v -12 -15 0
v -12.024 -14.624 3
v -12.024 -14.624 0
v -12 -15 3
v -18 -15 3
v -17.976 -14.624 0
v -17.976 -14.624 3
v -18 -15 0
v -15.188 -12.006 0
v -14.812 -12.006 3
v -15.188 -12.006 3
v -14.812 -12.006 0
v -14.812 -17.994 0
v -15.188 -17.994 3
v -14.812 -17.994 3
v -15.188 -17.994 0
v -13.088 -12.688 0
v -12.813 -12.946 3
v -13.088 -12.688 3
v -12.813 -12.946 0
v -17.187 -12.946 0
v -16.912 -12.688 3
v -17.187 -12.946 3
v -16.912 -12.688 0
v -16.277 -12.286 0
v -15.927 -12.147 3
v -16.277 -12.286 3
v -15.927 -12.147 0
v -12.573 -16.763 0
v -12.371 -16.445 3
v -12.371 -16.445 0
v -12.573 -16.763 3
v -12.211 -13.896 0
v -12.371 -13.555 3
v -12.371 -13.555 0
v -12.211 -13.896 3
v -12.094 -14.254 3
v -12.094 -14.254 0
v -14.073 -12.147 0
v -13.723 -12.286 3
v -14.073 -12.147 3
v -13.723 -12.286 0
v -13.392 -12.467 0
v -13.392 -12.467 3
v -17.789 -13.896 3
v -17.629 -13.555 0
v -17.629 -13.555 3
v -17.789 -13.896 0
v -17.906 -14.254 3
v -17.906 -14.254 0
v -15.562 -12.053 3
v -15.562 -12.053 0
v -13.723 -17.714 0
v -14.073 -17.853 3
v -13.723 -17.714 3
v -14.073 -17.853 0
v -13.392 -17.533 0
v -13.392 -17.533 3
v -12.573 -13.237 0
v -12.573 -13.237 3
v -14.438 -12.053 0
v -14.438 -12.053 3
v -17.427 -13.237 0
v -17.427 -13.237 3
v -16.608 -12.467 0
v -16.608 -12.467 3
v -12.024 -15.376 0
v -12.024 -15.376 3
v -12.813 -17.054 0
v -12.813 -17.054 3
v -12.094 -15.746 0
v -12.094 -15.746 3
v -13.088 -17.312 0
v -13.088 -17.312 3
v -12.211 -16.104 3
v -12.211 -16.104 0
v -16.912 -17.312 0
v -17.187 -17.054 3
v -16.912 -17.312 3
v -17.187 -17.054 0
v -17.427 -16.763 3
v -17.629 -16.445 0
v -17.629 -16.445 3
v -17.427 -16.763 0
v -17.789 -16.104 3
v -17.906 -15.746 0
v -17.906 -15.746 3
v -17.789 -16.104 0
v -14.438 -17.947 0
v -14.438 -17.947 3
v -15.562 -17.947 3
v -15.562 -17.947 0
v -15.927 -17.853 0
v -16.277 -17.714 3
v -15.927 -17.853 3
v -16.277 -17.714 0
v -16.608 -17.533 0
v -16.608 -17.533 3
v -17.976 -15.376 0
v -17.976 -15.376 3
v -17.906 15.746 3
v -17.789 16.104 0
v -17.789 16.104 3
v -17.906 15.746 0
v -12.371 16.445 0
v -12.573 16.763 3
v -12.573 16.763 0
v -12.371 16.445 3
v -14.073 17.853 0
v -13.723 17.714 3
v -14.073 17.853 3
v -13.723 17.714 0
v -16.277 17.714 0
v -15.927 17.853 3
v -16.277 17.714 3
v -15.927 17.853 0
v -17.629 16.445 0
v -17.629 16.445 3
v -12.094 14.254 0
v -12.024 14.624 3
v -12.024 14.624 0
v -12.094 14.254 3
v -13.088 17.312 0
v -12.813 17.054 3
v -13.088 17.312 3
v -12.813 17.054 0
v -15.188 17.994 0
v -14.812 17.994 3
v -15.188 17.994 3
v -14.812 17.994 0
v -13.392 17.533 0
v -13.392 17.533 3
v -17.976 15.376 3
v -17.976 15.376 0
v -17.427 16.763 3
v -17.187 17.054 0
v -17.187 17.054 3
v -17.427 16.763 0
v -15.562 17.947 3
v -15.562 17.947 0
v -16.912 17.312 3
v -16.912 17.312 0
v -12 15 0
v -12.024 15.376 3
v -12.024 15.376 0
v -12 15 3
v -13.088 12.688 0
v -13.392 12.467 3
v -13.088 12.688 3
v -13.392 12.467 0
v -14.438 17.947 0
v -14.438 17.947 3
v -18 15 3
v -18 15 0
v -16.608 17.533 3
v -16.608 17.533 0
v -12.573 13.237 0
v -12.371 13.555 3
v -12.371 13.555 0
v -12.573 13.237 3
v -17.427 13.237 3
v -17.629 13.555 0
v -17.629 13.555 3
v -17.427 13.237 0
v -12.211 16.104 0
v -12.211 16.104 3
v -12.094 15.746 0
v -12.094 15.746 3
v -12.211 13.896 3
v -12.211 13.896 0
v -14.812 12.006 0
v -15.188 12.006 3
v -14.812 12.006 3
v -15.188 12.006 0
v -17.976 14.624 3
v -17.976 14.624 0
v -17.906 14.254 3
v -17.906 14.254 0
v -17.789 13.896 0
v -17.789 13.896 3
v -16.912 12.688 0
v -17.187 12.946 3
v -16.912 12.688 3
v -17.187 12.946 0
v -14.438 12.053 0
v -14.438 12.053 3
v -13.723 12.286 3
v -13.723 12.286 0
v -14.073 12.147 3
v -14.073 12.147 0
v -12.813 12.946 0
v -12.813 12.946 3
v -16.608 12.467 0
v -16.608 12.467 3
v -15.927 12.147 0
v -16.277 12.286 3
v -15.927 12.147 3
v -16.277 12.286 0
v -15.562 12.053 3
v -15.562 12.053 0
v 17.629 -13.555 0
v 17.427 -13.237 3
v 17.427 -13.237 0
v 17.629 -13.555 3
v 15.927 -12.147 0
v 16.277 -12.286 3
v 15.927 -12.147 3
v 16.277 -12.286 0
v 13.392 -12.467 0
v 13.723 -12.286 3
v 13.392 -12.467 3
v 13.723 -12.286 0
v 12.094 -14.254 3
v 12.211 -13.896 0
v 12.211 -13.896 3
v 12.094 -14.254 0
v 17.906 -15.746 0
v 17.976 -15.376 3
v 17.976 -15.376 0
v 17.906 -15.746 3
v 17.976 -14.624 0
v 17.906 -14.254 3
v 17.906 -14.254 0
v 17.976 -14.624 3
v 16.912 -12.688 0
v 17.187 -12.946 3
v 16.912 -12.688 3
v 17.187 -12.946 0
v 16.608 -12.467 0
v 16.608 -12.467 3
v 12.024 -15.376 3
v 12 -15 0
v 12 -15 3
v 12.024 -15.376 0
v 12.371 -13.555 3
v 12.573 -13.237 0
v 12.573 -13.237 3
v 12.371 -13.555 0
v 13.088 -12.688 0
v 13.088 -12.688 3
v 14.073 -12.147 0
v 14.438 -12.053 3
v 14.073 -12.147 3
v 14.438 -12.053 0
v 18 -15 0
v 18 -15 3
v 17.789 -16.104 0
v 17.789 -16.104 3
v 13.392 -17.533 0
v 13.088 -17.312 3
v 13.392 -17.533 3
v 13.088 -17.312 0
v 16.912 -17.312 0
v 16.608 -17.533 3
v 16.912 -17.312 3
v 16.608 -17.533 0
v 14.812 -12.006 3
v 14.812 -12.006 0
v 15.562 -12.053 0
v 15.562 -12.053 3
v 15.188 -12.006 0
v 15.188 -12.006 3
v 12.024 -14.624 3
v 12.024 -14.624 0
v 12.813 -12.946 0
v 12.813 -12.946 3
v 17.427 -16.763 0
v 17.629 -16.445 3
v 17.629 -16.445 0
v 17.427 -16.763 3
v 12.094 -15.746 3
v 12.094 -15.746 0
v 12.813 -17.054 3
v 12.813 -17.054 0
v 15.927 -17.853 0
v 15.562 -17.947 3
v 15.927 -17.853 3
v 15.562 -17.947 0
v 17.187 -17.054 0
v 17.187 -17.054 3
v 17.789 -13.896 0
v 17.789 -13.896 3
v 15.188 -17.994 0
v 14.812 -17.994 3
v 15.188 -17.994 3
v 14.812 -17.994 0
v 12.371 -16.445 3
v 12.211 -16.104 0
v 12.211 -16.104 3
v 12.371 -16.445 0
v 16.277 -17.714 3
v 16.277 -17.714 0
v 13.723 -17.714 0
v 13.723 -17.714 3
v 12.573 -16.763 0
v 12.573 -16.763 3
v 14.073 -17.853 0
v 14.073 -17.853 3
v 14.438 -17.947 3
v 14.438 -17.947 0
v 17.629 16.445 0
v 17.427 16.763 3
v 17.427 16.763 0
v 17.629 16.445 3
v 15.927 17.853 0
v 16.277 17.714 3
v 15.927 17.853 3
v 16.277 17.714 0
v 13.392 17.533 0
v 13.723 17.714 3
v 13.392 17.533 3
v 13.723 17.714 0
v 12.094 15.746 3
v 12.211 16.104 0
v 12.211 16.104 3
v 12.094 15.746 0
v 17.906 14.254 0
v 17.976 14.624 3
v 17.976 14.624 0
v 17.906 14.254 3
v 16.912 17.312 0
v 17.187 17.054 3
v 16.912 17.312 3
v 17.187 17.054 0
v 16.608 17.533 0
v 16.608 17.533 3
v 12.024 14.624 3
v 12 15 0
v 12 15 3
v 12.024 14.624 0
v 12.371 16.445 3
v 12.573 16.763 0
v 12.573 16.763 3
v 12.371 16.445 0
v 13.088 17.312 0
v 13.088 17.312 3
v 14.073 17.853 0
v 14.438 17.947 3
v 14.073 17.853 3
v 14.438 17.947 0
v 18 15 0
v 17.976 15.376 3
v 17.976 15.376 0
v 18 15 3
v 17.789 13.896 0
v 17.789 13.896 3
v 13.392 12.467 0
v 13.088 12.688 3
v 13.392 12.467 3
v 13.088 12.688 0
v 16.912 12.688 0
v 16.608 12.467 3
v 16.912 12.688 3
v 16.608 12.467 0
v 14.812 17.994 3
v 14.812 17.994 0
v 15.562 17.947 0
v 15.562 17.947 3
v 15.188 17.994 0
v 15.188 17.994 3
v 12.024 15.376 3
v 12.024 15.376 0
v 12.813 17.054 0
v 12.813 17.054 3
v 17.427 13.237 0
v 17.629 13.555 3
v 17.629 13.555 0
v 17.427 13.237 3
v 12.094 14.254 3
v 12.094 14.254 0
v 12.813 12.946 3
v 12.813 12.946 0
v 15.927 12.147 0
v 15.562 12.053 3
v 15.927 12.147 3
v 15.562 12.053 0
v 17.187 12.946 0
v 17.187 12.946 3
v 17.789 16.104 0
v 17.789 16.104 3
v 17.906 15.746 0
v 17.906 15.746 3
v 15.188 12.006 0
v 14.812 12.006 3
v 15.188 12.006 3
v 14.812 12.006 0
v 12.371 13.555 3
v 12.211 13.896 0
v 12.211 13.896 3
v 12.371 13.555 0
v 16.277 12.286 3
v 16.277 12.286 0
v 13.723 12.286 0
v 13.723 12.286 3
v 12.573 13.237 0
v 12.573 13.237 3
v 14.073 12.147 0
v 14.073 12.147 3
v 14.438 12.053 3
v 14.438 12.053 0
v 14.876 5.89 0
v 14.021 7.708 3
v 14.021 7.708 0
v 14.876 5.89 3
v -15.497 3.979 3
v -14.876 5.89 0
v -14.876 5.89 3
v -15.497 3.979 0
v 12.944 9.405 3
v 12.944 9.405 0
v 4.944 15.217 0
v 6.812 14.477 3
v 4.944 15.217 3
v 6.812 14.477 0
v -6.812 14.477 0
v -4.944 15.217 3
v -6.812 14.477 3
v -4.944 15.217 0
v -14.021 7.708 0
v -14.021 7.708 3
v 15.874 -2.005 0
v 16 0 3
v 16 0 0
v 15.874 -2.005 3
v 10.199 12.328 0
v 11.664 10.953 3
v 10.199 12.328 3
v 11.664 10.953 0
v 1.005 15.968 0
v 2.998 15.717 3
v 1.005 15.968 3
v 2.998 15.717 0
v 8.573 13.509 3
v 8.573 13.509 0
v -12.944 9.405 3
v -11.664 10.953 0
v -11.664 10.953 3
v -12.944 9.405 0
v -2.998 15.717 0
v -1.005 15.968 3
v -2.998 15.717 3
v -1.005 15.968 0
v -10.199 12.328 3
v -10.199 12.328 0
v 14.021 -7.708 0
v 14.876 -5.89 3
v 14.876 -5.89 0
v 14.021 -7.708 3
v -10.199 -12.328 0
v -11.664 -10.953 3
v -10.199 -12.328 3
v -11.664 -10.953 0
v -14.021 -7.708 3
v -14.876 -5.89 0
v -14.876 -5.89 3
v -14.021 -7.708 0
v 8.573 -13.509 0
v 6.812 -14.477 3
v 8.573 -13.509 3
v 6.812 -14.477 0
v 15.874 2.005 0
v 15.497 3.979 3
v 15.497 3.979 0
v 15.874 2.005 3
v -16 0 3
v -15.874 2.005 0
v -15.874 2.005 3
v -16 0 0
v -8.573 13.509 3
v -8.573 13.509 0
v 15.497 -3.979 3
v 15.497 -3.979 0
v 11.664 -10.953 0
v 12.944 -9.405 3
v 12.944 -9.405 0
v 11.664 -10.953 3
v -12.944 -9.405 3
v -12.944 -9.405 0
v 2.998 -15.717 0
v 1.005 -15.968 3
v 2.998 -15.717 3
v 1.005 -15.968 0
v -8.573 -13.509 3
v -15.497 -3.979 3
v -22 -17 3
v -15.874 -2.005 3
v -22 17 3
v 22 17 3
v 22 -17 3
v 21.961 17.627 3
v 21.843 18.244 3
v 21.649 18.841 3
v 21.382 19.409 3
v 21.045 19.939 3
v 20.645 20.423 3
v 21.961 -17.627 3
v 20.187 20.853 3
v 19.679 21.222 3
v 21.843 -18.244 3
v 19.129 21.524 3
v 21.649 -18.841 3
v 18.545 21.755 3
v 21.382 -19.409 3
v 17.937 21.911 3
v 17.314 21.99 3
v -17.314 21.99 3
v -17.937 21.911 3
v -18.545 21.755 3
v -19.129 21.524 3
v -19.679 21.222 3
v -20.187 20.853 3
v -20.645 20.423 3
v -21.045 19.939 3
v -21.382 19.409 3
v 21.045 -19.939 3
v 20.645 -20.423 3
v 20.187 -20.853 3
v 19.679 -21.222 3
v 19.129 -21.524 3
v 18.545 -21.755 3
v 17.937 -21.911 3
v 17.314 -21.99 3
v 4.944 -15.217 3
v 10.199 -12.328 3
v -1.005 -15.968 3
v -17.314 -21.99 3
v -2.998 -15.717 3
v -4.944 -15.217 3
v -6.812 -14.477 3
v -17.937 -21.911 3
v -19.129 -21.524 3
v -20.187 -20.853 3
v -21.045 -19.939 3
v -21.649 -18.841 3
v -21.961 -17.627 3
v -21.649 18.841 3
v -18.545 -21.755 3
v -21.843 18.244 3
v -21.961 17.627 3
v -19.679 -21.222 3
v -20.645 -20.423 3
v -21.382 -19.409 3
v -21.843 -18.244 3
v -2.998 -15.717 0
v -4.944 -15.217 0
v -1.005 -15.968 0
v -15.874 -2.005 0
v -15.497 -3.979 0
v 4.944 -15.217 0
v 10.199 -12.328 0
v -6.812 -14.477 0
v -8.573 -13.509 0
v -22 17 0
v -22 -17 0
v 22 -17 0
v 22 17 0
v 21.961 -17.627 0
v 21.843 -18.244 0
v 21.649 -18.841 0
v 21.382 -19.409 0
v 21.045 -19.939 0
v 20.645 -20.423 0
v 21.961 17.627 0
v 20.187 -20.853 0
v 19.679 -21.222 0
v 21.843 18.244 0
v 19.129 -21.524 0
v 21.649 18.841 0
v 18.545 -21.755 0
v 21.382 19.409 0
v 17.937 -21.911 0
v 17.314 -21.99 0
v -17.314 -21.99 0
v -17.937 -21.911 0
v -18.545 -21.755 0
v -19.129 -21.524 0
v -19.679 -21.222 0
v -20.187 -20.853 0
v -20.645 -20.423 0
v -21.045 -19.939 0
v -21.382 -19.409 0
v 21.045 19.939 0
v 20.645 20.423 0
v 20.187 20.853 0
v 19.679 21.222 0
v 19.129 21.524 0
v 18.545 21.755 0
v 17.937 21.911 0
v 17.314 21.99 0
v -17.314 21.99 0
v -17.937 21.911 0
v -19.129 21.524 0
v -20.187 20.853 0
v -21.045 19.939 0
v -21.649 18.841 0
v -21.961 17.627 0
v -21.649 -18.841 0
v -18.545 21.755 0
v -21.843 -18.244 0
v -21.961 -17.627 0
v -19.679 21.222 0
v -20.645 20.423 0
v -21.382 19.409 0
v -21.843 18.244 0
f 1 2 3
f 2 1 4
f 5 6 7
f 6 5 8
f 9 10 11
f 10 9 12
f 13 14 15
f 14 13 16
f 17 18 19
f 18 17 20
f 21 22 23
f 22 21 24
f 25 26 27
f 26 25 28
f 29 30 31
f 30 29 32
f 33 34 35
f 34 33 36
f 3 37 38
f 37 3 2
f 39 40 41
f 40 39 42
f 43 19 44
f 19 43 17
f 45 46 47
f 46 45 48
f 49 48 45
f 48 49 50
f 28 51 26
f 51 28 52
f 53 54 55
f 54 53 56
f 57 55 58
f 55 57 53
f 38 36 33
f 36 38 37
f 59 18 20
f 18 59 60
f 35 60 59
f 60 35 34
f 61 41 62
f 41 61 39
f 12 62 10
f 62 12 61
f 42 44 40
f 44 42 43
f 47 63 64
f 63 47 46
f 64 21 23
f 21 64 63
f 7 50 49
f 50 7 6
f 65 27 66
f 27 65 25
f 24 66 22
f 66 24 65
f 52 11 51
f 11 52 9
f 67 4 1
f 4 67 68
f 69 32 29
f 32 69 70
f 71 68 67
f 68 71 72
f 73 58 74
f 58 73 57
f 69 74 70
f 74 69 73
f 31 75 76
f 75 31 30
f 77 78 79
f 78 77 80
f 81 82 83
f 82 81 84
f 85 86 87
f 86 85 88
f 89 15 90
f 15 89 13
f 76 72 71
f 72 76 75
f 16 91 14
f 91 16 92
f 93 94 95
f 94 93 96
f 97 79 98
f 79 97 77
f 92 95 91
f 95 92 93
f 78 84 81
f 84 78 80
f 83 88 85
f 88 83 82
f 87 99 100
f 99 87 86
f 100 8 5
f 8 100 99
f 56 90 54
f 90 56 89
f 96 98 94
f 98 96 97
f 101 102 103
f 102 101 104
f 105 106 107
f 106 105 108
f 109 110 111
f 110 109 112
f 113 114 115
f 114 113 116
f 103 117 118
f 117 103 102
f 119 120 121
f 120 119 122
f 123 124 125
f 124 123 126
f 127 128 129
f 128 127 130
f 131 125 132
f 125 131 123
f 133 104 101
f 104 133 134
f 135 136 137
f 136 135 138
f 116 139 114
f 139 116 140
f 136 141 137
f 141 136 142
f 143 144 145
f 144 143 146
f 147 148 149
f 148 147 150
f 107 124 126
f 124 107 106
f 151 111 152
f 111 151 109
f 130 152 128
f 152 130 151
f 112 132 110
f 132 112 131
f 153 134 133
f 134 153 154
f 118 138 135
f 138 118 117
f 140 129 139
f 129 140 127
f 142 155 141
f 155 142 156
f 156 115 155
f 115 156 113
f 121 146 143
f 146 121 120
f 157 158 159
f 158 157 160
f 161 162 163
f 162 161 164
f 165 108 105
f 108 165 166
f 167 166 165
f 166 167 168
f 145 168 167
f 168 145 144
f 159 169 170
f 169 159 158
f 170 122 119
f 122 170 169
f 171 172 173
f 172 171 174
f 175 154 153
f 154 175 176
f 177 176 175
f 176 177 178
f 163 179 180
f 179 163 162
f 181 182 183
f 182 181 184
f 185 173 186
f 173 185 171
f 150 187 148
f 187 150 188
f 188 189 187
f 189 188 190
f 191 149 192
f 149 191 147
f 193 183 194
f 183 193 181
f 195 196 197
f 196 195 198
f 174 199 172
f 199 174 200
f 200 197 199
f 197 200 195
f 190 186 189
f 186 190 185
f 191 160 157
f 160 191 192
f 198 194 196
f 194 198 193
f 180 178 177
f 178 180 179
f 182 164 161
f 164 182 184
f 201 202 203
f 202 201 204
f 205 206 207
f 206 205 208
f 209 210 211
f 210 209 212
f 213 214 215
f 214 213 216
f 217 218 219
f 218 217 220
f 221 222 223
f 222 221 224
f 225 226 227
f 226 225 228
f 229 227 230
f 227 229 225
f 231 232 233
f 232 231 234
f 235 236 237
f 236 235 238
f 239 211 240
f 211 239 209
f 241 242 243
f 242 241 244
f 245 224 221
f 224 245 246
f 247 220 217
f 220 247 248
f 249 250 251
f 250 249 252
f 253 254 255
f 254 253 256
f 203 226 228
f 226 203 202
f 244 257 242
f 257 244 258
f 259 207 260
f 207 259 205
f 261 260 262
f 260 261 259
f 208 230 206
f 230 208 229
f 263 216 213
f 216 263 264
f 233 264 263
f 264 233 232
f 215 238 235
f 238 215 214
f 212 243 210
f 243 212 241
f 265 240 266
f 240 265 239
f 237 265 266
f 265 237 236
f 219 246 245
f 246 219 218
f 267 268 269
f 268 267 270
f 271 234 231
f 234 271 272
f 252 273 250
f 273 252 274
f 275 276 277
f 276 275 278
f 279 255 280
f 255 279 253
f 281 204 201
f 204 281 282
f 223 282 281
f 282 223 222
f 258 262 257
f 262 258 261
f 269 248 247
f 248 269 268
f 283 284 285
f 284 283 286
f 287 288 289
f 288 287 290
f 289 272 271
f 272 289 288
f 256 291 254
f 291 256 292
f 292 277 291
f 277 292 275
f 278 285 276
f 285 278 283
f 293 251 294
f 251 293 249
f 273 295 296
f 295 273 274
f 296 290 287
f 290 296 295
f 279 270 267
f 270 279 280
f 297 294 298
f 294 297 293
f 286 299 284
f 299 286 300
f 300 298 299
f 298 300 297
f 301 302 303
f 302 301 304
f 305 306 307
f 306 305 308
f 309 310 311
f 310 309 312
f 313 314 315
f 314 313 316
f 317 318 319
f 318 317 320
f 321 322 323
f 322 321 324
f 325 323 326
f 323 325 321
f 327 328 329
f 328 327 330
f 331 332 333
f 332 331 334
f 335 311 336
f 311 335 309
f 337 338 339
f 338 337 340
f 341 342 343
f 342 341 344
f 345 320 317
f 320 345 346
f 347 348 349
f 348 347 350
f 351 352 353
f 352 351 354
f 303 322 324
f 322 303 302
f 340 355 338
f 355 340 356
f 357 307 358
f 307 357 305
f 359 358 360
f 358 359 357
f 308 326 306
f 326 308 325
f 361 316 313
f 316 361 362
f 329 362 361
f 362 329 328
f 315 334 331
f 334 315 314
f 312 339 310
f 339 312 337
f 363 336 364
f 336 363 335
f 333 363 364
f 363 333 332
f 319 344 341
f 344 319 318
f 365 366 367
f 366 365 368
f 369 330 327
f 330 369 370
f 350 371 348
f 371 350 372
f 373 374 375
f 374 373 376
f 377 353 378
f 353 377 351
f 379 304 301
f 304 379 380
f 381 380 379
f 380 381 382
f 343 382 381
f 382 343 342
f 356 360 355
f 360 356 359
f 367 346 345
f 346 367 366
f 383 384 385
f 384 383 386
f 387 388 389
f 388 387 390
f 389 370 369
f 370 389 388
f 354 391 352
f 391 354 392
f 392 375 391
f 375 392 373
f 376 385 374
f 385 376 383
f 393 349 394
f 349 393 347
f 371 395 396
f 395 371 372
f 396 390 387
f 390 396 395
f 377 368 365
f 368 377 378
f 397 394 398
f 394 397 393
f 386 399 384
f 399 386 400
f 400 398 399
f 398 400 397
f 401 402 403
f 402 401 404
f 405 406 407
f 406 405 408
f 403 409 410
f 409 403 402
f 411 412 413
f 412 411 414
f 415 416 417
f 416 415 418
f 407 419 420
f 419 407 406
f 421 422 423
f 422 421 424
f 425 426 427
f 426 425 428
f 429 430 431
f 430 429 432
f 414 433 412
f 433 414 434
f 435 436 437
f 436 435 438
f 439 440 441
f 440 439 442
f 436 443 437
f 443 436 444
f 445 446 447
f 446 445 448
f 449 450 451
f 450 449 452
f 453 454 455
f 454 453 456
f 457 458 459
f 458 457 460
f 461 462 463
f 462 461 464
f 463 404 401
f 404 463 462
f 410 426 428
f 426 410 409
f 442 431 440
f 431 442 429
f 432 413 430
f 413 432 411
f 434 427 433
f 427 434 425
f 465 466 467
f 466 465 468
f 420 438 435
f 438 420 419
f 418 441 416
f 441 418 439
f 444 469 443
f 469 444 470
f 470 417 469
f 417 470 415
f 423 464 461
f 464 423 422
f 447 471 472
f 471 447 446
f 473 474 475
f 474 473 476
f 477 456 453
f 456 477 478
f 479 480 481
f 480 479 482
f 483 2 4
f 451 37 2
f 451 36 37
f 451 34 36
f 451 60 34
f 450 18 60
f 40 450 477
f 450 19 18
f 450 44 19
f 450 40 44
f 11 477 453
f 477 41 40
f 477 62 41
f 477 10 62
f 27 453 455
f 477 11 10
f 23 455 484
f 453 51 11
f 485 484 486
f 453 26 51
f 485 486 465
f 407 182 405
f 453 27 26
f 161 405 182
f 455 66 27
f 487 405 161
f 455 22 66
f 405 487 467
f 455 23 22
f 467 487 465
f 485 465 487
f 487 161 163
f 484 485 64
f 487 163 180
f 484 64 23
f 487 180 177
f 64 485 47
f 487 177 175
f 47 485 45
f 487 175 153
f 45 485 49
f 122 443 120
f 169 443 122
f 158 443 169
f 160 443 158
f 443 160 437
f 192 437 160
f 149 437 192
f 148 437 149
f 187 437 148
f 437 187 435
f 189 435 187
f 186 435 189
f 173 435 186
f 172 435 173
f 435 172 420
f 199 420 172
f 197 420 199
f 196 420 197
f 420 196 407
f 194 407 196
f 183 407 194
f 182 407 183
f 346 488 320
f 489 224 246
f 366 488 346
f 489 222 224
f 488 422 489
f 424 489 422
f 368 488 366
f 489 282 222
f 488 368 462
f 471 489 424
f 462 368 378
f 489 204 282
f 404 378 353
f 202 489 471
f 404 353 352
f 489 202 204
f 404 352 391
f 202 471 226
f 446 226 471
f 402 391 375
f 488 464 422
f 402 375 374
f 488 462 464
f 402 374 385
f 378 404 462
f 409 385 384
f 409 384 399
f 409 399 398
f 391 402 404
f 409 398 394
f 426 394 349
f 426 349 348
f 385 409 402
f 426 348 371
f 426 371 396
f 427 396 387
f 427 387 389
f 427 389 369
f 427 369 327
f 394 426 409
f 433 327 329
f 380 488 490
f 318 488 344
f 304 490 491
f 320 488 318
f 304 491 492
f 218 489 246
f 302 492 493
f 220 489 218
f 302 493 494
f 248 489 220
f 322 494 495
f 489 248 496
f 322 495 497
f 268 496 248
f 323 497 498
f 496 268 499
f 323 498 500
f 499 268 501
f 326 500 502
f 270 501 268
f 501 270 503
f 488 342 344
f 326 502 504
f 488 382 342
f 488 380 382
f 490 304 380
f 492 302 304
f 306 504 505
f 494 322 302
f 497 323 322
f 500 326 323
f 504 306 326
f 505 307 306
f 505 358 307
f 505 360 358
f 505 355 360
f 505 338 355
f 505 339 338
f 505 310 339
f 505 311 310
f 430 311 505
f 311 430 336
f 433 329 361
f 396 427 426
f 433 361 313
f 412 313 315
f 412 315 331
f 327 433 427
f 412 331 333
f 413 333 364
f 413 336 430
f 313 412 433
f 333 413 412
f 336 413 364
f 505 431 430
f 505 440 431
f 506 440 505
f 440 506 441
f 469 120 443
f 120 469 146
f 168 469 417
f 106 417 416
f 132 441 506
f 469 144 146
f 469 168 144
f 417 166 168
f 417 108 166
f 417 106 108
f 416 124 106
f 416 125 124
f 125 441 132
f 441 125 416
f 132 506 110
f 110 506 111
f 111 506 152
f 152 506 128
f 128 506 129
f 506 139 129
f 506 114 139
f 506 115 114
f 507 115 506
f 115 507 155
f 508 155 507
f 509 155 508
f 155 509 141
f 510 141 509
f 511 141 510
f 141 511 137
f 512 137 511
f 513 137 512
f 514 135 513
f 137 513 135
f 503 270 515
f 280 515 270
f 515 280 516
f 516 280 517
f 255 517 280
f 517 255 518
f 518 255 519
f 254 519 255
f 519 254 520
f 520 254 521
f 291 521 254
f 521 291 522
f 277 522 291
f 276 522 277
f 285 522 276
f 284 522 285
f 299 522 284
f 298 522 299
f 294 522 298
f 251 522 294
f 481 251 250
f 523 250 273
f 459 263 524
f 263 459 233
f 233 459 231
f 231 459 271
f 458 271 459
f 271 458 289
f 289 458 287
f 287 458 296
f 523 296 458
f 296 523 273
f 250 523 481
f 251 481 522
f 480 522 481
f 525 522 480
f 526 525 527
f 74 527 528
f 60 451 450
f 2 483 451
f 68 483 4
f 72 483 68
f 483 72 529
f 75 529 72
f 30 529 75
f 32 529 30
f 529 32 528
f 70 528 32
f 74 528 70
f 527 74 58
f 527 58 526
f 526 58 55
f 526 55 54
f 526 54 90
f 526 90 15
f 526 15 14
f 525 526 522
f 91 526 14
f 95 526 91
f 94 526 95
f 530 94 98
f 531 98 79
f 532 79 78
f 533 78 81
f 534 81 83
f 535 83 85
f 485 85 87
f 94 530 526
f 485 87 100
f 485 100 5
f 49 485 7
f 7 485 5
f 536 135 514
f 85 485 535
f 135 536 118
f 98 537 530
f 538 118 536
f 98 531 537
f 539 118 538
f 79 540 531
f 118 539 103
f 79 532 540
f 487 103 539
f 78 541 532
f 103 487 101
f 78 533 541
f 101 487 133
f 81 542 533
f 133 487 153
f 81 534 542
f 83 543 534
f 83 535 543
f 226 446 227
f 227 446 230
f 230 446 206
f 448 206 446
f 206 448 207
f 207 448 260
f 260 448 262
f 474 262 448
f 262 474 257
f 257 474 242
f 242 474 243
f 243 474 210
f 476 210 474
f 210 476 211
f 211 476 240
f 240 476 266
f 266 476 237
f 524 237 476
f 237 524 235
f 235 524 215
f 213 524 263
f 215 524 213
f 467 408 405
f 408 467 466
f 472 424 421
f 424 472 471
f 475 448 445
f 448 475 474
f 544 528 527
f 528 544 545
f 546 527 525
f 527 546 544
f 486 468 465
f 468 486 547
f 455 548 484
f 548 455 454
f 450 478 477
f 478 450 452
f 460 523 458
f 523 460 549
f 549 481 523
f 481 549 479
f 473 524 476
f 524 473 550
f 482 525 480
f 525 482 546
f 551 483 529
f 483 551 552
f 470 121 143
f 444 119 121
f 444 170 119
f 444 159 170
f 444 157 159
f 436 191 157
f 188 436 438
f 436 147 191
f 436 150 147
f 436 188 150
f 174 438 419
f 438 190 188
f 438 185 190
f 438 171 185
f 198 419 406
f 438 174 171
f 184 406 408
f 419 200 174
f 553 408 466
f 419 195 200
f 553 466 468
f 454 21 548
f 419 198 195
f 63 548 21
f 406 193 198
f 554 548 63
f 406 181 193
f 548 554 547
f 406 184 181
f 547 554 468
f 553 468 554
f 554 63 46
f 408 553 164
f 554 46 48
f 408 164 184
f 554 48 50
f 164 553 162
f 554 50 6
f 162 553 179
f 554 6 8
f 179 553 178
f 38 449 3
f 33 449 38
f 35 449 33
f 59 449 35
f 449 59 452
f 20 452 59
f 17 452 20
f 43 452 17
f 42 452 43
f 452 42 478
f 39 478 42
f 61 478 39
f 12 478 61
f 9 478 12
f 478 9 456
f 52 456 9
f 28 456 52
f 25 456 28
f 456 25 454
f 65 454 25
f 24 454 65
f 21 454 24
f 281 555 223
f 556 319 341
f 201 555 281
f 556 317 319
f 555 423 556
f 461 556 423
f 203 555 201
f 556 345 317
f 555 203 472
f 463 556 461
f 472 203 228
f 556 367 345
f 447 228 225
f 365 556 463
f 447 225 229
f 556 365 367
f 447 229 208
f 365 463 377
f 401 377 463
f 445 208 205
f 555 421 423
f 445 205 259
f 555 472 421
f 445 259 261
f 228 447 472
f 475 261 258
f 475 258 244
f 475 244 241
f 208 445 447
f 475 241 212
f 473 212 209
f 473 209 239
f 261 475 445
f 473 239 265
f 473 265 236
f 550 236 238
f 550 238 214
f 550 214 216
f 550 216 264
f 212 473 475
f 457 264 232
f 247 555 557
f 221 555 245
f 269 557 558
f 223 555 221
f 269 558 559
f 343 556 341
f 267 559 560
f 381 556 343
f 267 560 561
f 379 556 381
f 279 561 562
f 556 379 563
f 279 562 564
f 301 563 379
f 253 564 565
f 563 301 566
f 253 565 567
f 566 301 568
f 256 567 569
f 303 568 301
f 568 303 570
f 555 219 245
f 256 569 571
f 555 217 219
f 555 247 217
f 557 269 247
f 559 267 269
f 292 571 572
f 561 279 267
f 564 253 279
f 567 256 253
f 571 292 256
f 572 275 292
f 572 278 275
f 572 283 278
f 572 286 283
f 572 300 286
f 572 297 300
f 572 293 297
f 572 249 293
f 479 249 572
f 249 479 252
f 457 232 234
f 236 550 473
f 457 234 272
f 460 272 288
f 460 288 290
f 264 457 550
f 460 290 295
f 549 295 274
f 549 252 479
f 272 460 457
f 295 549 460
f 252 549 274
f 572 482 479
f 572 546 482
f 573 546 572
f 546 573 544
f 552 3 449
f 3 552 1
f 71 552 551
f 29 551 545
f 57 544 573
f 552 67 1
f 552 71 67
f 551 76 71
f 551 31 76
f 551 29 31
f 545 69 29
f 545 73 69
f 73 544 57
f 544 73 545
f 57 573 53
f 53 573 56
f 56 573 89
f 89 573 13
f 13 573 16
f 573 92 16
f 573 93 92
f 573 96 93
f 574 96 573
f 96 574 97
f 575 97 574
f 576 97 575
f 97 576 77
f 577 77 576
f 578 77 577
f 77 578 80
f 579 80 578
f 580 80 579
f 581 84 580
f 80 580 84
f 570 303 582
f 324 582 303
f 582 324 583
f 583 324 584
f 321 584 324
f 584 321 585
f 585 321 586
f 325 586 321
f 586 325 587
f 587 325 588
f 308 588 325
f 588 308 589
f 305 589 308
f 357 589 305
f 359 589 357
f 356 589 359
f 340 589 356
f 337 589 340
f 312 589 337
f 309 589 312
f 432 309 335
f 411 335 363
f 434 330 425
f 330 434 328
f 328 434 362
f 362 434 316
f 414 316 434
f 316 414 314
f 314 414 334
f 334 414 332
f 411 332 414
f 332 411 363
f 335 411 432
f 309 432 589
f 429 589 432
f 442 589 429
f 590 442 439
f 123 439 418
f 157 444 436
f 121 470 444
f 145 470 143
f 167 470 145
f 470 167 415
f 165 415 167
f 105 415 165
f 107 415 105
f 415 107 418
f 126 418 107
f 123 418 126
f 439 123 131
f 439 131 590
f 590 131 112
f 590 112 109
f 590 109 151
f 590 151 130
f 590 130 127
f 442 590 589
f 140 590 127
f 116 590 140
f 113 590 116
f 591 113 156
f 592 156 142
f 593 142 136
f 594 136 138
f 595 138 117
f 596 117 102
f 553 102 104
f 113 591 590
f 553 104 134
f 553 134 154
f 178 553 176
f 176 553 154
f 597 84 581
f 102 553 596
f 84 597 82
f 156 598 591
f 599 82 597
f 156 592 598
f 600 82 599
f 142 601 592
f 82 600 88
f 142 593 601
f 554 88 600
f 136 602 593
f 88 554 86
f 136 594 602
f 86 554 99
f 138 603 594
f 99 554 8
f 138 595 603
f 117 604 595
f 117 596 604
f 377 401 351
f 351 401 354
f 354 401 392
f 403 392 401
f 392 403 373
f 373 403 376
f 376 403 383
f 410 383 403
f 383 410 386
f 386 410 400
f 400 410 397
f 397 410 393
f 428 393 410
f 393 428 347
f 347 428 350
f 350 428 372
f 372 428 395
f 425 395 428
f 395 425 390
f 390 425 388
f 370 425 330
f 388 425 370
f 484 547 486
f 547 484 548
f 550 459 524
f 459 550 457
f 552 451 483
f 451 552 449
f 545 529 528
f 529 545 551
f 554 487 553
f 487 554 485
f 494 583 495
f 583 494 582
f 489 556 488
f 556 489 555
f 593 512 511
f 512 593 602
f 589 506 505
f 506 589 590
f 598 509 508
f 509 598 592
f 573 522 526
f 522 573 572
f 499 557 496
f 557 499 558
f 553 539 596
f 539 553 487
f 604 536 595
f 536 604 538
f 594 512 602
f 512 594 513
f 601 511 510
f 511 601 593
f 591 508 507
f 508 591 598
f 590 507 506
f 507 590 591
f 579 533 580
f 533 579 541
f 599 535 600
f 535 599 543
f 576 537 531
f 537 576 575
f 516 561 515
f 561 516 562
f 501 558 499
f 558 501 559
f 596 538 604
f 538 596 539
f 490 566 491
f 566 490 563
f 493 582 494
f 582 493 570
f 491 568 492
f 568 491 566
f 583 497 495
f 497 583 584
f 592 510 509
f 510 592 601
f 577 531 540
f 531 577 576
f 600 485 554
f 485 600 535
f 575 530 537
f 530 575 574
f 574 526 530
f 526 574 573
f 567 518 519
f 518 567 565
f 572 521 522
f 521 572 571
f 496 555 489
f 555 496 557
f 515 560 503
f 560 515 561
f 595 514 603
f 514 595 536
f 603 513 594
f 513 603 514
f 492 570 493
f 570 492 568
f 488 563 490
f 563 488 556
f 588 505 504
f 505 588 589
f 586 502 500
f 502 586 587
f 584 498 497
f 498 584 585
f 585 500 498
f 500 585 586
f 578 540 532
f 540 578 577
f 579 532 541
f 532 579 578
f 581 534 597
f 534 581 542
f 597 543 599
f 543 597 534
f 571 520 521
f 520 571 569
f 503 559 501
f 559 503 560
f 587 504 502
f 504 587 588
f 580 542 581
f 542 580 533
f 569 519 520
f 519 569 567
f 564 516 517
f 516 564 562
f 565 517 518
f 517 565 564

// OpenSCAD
$fn = 50;


difference() {
	union() {
		hull() {
			translate(v = [-17.0000000000, 17.0000000000, 0]) {
				cylinder(h = 3, r = 5);
			}
			translate(v = [17.0000000000, 17.0000000000, 0]) {
				cylinder(h = 3, r = 5);
			}
			translate(v = [-17.0000000000, -17.0000000000, 0]) {
				cylinder(h = 3, r = 5);
			}
			translate(v = [17.0000000000, -17.0000000000, 0]) {
				cylinder(h = 3, r = 5);
			}
		}
	}
	union() {
		#translate(v = [-15.0000000000, -15.0000000000, -100.0000000000]) {
			cylinder(h = 200, r = 3.0000000000);
		}
		#translate(v = [-15.0000000000, 15.0000000000, -100.0000000000]) {
			cylinder(h = 200, r = 3.0000000000);
		}
		#translate(v = [15.0000000000, -15.0000000000, -100.0000000000]) {
			cylinder(h = 200, r = 3.0000000000);
		}
		#translate(v = [15.0000000000, 15.0000000000, -100.0000000000]) {
			cylinder(h = 200, r = 3.0000000000);
		}
		#cylinder(h = 3, r = 16.0000000000);
	}
}
